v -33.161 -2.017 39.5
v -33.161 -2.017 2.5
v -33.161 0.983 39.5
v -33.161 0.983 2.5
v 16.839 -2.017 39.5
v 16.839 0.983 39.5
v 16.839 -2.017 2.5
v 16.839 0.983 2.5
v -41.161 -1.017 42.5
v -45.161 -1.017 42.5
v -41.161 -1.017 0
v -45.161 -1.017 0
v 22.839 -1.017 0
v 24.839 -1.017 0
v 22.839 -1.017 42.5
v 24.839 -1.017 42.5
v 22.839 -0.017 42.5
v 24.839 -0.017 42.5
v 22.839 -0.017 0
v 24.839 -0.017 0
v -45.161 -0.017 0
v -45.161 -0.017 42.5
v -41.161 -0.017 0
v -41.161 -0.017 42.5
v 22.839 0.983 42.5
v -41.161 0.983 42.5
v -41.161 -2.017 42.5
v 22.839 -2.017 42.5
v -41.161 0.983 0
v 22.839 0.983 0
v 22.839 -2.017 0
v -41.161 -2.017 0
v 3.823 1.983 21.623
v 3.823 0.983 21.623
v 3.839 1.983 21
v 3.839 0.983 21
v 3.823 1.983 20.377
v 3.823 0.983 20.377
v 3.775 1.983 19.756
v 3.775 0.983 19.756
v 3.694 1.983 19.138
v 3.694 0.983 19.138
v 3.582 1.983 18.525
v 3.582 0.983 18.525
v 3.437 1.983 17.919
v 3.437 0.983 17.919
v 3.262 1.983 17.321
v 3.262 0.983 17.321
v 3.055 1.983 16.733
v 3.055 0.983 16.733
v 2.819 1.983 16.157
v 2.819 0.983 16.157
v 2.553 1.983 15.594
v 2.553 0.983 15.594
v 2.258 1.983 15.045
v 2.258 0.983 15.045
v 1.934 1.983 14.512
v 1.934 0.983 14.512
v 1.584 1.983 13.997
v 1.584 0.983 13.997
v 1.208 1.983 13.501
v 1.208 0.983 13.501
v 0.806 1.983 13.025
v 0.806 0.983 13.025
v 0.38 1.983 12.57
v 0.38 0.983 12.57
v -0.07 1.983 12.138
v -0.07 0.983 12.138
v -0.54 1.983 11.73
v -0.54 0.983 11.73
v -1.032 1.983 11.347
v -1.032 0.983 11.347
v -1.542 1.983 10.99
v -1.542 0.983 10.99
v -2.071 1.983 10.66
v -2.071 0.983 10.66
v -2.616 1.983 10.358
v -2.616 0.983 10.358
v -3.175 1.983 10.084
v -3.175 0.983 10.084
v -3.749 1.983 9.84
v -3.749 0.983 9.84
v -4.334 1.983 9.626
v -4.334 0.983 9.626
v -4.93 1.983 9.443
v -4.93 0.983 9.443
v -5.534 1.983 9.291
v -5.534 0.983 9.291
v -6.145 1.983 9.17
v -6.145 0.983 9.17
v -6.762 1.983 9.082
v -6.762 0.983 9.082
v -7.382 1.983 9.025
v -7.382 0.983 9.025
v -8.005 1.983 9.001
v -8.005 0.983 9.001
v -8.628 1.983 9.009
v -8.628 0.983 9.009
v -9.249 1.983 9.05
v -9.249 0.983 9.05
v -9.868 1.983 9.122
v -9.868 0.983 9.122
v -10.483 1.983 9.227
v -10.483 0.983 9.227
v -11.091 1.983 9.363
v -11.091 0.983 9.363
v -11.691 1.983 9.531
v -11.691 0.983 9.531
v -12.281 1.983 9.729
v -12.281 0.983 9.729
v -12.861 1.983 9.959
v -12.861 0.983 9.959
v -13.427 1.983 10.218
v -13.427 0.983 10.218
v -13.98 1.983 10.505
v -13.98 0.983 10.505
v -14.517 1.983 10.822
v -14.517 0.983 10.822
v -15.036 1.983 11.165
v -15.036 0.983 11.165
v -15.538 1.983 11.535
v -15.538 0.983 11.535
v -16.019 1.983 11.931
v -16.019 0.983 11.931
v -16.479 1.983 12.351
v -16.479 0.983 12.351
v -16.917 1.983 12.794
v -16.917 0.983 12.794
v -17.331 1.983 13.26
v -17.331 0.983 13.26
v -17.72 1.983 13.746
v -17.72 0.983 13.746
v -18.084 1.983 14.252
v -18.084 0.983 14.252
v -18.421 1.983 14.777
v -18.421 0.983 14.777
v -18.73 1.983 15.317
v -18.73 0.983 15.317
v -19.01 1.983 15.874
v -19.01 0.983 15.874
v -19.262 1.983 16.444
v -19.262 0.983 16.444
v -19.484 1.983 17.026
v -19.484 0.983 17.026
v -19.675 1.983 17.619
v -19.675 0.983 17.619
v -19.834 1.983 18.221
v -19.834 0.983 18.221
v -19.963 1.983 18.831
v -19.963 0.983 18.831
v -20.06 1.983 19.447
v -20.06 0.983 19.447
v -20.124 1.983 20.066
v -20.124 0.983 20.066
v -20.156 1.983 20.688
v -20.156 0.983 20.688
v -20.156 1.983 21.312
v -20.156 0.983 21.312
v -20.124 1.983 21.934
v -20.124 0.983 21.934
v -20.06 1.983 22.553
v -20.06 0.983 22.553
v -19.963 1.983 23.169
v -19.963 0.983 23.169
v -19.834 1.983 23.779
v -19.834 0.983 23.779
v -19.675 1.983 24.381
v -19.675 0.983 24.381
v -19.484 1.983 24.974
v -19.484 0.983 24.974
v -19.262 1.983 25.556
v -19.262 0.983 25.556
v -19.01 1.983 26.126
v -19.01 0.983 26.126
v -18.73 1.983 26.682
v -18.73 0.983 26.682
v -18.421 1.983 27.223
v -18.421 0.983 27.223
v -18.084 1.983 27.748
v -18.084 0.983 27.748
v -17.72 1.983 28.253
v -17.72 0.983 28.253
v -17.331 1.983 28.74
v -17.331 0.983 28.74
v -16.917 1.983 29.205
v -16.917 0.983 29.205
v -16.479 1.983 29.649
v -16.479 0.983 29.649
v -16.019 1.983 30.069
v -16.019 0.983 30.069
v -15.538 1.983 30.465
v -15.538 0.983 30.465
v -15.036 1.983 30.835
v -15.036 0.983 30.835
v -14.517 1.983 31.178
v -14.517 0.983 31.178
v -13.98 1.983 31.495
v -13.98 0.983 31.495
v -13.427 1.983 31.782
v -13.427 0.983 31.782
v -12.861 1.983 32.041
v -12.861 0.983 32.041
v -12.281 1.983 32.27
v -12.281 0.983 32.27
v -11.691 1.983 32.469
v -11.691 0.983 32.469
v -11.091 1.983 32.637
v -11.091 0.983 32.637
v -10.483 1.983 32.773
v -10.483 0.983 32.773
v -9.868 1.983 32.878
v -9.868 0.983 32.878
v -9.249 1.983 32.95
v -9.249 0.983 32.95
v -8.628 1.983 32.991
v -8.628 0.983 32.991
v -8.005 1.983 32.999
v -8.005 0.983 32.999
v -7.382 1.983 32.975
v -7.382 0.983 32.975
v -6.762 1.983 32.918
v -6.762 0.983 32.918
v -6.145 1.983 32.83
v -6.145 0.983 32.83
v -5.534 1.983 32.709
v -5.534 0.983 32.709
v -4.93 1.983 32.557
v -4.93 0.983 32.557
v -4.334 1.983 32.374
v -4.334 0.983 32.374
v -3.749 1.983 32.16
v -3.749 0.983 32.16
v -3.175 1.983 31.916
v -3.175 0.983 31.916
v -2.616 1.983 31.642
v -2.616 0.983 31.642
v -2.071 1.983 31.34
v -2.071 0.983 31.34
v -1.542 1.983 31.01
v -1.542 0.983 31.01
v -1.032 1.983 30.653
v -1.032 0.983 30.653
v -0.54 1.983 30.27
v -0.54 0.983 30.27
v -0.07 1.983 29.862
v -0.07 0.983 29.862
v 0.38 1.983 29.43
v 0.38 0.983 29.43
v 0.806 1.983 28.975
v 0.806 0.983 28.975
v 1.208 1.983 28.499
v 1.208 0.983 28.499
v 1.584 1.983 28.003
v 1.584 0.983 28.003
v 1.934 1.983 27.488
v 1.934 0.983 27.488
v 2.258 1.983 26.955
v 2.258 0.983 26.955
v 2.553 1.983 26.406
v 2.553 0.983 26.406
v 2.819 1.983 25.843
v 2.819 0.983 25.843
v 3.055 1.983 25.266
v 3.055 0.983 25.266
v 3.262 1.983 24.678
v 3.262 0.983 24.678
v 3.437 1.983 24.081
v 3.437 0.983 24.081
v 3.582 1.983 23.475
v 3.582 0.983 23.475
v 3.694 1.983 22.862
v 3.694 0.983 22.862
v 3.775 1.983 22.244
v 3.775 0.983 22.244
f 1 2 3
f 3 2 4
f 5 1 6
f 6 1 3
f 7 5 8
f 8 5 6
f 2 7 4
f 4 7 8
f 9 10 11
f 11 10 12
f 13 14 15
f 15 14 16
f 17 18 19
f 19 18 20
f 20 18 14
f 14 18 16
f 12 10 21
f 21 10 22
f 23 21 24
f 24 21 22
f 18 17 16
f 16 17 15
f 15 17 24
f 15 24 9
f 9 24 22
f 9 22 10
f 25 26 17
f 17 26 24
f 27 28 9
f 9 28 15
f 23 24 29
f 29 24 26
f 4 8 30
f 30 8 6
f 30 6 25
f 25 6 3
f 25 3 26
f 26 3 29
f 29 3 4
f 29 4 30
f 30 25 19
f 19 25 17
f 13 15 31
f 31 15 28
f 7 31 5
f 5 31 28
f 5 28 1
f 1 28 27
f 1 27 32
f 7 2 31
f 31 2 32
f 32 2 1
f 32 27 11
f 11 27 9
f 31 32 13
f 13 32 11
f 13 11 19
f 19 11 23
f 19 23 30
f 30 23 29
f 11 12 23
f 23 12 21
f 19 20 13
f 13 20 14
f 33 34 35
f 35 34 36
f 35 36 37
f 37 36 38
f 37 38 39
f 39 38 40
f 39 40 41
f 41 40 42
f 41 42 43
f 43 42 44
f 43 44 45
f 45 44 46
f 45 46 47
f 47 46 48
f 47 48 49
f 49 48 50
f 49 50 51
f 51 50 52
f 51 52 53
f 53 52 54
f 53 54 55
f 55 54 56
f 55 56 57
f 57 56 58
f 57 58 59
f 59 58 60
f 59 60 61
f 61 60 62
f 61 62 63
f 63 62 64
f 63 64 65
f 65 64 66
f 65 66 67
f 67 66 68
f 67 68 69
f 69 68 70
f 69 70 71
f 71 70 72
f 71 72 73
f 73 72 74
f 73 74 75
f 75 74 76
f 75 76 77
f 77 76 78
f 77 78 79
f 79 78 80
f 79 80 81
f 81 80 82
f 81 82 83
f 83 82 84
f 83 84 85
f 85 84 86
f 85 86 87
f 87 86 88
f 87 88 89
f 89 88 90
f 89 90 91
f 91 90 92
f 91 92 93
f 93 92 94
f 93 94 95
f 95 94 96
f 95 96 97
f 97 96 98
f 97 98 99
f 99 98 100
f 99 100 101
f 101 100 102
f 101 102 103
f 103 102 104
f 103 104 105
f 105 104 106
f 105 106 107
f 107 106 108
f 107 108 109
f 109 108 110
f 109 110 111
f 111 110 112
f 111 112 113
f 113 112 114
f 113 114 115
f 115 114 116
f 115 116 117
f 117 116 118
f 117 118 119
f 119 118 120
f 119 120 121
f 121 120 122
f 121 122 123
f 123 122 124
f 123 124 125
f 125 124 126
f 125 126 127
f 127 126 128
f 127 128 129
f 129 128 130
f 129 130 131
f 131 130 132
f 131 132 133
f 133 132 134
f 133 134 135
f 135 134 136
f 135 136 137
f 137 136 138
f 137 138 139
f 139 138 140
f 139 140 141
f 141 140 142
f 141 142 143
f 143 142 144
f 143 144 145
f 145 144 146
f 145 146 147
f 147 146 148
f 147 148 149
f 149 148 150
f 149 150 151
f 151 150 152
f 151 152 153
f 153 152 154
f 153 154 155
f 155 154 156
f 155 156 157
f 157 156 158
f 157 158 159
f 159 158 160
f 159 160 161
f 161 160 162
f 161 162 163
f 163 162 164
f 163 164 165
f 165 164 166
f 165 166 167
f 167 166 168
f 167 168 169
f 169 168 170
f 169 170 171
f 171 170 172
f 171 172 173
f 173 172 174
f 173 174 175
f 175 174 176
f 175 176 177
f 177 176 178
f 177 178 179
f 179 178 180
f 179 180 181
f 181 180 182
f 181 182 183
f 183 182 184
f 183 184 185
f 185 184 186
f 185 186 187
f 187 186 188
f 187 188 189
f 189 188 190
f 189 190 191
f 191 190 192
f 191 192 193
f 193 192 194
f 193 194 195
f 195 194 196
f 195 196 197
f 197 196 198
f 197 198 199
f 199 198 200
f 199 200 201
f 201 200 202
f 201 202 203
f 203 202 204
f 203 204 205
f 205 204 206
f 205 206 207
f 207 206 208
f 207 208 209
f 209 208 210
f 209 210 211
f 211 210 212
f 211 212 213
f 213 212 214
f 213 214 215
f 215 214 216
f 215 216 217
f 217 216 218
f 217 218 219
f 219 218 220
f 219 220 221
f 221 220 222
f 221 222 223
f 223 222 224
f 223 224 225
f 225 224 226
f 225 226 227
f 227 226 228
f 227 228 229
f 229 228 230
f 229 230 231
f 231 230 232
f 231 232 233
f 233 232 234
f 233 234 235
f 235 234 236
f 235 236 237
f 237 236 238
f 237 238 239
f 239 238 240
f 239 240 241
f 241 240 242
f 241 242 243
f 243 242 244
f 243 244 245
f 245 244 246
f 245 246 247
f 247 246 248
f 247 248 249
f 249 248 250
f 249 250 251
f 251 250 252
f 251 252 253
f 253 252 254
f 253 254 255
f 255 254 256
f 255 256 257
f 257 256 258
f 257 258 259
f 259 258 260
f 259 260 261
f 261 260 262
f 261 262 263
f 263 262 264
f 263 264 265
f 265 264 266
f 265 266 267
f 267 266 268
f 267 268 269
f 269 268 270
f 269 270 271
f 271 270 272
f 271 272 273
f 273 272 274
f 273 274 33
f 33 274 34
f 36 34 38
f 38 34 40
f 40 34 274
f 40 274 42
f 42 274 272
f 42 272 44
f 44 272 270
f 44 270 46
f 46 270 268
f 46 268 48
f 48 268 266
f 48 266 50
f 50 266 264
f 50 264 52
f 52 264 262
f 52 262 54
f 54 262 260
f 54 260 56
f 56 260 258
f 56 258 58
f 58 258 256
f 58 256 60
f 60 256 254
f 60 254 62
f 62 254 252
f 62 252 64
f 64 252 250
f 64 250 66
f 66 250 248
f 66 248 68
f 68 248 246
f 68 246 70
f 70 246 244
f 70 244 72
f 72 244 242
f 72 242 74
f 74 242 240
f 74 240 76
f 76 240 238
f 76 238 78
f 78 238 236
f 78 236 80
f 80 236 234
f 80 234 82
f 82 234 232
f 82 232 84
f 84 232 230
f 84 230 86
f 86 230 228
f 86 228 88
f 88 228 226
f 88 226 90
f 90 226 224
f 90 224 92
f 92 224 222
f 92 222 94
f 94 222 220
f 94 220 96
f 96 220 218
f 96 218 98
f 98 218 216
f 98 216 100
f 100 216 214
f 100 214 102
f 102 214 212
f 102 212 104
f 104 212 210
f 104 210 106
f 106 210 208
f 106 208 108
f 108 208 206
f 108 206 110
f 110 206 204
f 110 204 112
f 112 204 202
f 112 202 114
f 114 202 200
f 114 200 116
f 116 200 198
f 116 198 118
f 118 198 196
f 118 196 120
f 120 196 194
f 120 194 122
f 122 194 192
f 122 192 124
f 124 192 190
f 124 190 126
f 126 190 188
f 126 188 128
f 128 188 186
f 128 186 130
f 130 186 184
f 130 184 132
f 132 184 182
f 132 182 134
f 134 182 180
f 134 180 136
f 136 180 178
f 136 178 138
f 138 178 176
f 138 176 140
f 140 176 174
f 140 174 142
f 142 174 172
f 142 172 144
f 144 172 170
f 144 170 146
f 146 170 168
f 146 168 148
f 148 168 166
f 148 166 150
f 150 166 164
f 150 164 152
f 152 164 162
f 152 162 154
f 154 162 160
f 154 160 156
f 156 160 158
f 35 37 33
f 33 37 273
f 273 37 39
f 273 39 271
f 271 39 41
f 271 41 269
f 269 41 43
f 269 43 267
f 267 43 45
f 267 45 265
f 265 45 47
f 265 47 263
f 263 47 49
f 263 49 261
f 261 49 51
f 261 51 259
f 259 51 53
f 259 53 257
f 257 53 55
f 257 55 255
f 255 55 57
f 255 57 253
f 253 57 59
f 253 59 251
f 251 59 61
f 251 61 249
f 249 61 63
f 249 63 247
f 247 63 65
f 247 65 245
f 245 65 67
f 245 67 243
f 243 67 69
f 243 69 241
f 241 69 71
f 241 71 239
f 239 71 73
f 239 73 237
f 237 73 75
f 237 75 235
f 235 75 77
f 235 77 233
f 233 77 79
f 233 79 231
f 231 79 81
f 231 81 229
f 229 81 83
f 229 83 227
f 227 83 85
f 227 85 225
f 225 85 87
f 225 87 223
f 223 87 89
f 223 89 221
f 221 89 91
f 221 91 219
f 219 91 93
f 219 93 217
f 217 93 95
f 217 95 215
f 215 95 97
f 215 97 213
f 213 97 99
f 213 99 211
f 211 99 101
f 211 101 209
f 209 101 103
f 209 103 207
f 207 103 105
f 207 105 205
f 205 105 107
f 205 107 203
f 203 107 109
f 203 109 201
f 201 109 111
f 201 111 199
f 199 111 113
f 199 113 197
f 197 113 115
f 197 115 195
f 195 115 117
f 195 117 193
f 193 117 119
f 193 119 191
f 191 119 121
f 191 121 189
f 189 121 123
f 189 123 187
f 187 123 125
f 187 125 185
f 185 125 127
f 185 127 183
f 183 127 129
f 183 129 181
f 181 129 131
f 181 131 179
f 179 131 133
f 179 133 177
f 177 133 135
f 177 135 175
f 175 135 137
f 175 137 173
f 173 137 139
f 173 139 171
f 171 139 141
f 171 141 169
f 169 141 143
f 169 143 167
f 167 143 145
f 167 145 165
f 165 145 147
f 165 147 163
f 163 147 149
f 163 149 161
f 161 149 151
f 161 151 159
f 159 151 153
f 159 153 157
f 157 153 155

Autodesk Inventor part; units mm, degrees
ref_plane "YZ Plane" through (0, 0, 0) normal (1, 0, 0) x (0, 1, 0)
ref_plane "XZ Plane" through (0, 0, 0) normal (0, 1, 0) x (-1, 0, 0)
ref_plane "XY Plane" through (0, 0, 0) normal (0, 0, 1) x (1, 0, 0)
sketch "Skizze1" plane through (0, 0, 0) normal (0, 0, 1) x (1, 0, 0)
  circle A0 centre (-20.2101, 34.0775) radius 3.5 projected
  circle A1 centre (16.2899, -67.9225) radius 3.5 projected
  circle A2 centre (27.7899, 31.0775) radius 1.5 projected
  circle A3 centre (-1.7101, -51.9225) radius 1.5 projected
  line L0 (-11.7101, -72.9225) -> (30.2899, -72.9225) projected
  line L1 (30.2899, -72.9225) -> (30.2899, 68.0775) projected
  line L2 (30.2899, 68.0775) -> (-32.7101, 68.0775) projected
  line L3 (-32.7101, 68.0775) -> (-32.7101, -51.9225) projected
  line L4 (-32.7101, -51.9225) -> (-11.7101, -72.9225) projected
  line L5 (24.8394, -0.0171) -> (-45.1606, -0.0171)
  line L6 (-45.1606, -0.0171) -> (-45.1606, -1.0171)
  line L7 (-45.1606, -1.0171) -> (24.8394, -1.0171)
  line L8 (24.8394, -1.0171) -> (24.8394, -0.0171)
  line L9 (22.8394, -1.0171) -> (-41.1606, -1.0171)
  line L10 (-41.1606, -1.0171) -> (-41.1606, -2.0171)
  line L11 (-41.1606, -2.0171) -> (22.8394, -2.0171)
  line L12 (22.8394, -2.0171) -> (22.8394, -1.0171)
  line L13 (22.8394, -0.0171) -> (-41.1606, -0.0171)
  line L14 (-41.1606, -0.0171) -> (-41.1606, 0.9829)
  line L15 (-41.1606, 0.9829) -> (22.8394, 0.9829)
  line L16 (22.8394, 0.9829) -> (22.8394, -0.0171)
  point P0 (0, 0)
  dimension "d0" = 70
  dimension "d1" = 1
  dimension "d2" = 64
  dimension "d3" = 1
  dimension "d4" = 2
  dimension "d5" = 1
extrude "Extrusion1" add sketch "Skizze1" along normal blind 42.5 contours L11 L10 L7 L3 | L3 L7 L12 L11 | L7 L6 L5 L3 | L3 L5 L8 L7 | L15 L16 L5 L3 | L3 L5 L14 L15
sketch "Skizze2" plane through (-41.1606, 0.9829, 0) normal (0, 1, 0) x (1, 0, 0)
  line L0 (64, 0) -> (0, 0) projected
  line L1 (0, 0) -> (0, -42.5) projected
  line L2 (64, -42.5) -> (0, -42.5) projected
  line L3 (64, 0) -> (64, -42.5) projected
  line L4 (58, -39.5) -> (8, -39.5)
  line L5 (8, -39.5) -> (8, -2.5)
  line L6 (8, -2.5) -> (58, -2.5)
  line L7 (58, -2.5) -> (58, -39.5)
  point P0 (41.1606, 0)
  dimension "d8" = 50
  dimension "d9" = 37
  dimension "d10" = 3
  dimension "d11" = 6
extrude "Extrusion2" cut sketch "Skizze2" against normal through all contours L4 L5 L6 L7
ref_plane "Arbeitsebene1" through (-8.1606, 0.9829, 2.5) normal (-1, 0, 0) x (0, 0, 1)
ref_plane "Arbeitsebene2" through (-33.1606, 0.9829, 21) normal (0, 0, 1) x (1, 0, 0)
sketch "Skizze5" plane through (-41.1606, 0.9829, 0) normal (0, 1, 0) x (1, 0, 0)
  line L0 (58, -2.5) -> (58, -39.5) construction
  line L1 (58, -39.5) -> (8, -39.5) construction
  line L2 (8, -39.5) -> (8, -2.5) construction
  line L3 (8, -2.5) -> (58, -2.5) construction
  line L4 (64, 0) -> (0, 0) construction
  line L5 (0, 0) -> (0, -42.5) construction
  line L6 (64, -42.5) -> (0, -42.5) construction
  line L7 (64, 0) -> (64, -42.5) construction
  circle A0 centre (39.5, -21) radius 18.5 construction
  circle A1 centre (26.5, -21) radius 18.5 construction
  ellipse E0 centre (33, -21) end of major axis (58, -21) minor radius 18.5 construction
  circle A2 centre (33, -21) radius 12
  point P0 (41.1606, 0)
extrude "Extrusion3" add sketch "Skizze5" along normal blind 1
properties part number "03_LCD_Frame"
